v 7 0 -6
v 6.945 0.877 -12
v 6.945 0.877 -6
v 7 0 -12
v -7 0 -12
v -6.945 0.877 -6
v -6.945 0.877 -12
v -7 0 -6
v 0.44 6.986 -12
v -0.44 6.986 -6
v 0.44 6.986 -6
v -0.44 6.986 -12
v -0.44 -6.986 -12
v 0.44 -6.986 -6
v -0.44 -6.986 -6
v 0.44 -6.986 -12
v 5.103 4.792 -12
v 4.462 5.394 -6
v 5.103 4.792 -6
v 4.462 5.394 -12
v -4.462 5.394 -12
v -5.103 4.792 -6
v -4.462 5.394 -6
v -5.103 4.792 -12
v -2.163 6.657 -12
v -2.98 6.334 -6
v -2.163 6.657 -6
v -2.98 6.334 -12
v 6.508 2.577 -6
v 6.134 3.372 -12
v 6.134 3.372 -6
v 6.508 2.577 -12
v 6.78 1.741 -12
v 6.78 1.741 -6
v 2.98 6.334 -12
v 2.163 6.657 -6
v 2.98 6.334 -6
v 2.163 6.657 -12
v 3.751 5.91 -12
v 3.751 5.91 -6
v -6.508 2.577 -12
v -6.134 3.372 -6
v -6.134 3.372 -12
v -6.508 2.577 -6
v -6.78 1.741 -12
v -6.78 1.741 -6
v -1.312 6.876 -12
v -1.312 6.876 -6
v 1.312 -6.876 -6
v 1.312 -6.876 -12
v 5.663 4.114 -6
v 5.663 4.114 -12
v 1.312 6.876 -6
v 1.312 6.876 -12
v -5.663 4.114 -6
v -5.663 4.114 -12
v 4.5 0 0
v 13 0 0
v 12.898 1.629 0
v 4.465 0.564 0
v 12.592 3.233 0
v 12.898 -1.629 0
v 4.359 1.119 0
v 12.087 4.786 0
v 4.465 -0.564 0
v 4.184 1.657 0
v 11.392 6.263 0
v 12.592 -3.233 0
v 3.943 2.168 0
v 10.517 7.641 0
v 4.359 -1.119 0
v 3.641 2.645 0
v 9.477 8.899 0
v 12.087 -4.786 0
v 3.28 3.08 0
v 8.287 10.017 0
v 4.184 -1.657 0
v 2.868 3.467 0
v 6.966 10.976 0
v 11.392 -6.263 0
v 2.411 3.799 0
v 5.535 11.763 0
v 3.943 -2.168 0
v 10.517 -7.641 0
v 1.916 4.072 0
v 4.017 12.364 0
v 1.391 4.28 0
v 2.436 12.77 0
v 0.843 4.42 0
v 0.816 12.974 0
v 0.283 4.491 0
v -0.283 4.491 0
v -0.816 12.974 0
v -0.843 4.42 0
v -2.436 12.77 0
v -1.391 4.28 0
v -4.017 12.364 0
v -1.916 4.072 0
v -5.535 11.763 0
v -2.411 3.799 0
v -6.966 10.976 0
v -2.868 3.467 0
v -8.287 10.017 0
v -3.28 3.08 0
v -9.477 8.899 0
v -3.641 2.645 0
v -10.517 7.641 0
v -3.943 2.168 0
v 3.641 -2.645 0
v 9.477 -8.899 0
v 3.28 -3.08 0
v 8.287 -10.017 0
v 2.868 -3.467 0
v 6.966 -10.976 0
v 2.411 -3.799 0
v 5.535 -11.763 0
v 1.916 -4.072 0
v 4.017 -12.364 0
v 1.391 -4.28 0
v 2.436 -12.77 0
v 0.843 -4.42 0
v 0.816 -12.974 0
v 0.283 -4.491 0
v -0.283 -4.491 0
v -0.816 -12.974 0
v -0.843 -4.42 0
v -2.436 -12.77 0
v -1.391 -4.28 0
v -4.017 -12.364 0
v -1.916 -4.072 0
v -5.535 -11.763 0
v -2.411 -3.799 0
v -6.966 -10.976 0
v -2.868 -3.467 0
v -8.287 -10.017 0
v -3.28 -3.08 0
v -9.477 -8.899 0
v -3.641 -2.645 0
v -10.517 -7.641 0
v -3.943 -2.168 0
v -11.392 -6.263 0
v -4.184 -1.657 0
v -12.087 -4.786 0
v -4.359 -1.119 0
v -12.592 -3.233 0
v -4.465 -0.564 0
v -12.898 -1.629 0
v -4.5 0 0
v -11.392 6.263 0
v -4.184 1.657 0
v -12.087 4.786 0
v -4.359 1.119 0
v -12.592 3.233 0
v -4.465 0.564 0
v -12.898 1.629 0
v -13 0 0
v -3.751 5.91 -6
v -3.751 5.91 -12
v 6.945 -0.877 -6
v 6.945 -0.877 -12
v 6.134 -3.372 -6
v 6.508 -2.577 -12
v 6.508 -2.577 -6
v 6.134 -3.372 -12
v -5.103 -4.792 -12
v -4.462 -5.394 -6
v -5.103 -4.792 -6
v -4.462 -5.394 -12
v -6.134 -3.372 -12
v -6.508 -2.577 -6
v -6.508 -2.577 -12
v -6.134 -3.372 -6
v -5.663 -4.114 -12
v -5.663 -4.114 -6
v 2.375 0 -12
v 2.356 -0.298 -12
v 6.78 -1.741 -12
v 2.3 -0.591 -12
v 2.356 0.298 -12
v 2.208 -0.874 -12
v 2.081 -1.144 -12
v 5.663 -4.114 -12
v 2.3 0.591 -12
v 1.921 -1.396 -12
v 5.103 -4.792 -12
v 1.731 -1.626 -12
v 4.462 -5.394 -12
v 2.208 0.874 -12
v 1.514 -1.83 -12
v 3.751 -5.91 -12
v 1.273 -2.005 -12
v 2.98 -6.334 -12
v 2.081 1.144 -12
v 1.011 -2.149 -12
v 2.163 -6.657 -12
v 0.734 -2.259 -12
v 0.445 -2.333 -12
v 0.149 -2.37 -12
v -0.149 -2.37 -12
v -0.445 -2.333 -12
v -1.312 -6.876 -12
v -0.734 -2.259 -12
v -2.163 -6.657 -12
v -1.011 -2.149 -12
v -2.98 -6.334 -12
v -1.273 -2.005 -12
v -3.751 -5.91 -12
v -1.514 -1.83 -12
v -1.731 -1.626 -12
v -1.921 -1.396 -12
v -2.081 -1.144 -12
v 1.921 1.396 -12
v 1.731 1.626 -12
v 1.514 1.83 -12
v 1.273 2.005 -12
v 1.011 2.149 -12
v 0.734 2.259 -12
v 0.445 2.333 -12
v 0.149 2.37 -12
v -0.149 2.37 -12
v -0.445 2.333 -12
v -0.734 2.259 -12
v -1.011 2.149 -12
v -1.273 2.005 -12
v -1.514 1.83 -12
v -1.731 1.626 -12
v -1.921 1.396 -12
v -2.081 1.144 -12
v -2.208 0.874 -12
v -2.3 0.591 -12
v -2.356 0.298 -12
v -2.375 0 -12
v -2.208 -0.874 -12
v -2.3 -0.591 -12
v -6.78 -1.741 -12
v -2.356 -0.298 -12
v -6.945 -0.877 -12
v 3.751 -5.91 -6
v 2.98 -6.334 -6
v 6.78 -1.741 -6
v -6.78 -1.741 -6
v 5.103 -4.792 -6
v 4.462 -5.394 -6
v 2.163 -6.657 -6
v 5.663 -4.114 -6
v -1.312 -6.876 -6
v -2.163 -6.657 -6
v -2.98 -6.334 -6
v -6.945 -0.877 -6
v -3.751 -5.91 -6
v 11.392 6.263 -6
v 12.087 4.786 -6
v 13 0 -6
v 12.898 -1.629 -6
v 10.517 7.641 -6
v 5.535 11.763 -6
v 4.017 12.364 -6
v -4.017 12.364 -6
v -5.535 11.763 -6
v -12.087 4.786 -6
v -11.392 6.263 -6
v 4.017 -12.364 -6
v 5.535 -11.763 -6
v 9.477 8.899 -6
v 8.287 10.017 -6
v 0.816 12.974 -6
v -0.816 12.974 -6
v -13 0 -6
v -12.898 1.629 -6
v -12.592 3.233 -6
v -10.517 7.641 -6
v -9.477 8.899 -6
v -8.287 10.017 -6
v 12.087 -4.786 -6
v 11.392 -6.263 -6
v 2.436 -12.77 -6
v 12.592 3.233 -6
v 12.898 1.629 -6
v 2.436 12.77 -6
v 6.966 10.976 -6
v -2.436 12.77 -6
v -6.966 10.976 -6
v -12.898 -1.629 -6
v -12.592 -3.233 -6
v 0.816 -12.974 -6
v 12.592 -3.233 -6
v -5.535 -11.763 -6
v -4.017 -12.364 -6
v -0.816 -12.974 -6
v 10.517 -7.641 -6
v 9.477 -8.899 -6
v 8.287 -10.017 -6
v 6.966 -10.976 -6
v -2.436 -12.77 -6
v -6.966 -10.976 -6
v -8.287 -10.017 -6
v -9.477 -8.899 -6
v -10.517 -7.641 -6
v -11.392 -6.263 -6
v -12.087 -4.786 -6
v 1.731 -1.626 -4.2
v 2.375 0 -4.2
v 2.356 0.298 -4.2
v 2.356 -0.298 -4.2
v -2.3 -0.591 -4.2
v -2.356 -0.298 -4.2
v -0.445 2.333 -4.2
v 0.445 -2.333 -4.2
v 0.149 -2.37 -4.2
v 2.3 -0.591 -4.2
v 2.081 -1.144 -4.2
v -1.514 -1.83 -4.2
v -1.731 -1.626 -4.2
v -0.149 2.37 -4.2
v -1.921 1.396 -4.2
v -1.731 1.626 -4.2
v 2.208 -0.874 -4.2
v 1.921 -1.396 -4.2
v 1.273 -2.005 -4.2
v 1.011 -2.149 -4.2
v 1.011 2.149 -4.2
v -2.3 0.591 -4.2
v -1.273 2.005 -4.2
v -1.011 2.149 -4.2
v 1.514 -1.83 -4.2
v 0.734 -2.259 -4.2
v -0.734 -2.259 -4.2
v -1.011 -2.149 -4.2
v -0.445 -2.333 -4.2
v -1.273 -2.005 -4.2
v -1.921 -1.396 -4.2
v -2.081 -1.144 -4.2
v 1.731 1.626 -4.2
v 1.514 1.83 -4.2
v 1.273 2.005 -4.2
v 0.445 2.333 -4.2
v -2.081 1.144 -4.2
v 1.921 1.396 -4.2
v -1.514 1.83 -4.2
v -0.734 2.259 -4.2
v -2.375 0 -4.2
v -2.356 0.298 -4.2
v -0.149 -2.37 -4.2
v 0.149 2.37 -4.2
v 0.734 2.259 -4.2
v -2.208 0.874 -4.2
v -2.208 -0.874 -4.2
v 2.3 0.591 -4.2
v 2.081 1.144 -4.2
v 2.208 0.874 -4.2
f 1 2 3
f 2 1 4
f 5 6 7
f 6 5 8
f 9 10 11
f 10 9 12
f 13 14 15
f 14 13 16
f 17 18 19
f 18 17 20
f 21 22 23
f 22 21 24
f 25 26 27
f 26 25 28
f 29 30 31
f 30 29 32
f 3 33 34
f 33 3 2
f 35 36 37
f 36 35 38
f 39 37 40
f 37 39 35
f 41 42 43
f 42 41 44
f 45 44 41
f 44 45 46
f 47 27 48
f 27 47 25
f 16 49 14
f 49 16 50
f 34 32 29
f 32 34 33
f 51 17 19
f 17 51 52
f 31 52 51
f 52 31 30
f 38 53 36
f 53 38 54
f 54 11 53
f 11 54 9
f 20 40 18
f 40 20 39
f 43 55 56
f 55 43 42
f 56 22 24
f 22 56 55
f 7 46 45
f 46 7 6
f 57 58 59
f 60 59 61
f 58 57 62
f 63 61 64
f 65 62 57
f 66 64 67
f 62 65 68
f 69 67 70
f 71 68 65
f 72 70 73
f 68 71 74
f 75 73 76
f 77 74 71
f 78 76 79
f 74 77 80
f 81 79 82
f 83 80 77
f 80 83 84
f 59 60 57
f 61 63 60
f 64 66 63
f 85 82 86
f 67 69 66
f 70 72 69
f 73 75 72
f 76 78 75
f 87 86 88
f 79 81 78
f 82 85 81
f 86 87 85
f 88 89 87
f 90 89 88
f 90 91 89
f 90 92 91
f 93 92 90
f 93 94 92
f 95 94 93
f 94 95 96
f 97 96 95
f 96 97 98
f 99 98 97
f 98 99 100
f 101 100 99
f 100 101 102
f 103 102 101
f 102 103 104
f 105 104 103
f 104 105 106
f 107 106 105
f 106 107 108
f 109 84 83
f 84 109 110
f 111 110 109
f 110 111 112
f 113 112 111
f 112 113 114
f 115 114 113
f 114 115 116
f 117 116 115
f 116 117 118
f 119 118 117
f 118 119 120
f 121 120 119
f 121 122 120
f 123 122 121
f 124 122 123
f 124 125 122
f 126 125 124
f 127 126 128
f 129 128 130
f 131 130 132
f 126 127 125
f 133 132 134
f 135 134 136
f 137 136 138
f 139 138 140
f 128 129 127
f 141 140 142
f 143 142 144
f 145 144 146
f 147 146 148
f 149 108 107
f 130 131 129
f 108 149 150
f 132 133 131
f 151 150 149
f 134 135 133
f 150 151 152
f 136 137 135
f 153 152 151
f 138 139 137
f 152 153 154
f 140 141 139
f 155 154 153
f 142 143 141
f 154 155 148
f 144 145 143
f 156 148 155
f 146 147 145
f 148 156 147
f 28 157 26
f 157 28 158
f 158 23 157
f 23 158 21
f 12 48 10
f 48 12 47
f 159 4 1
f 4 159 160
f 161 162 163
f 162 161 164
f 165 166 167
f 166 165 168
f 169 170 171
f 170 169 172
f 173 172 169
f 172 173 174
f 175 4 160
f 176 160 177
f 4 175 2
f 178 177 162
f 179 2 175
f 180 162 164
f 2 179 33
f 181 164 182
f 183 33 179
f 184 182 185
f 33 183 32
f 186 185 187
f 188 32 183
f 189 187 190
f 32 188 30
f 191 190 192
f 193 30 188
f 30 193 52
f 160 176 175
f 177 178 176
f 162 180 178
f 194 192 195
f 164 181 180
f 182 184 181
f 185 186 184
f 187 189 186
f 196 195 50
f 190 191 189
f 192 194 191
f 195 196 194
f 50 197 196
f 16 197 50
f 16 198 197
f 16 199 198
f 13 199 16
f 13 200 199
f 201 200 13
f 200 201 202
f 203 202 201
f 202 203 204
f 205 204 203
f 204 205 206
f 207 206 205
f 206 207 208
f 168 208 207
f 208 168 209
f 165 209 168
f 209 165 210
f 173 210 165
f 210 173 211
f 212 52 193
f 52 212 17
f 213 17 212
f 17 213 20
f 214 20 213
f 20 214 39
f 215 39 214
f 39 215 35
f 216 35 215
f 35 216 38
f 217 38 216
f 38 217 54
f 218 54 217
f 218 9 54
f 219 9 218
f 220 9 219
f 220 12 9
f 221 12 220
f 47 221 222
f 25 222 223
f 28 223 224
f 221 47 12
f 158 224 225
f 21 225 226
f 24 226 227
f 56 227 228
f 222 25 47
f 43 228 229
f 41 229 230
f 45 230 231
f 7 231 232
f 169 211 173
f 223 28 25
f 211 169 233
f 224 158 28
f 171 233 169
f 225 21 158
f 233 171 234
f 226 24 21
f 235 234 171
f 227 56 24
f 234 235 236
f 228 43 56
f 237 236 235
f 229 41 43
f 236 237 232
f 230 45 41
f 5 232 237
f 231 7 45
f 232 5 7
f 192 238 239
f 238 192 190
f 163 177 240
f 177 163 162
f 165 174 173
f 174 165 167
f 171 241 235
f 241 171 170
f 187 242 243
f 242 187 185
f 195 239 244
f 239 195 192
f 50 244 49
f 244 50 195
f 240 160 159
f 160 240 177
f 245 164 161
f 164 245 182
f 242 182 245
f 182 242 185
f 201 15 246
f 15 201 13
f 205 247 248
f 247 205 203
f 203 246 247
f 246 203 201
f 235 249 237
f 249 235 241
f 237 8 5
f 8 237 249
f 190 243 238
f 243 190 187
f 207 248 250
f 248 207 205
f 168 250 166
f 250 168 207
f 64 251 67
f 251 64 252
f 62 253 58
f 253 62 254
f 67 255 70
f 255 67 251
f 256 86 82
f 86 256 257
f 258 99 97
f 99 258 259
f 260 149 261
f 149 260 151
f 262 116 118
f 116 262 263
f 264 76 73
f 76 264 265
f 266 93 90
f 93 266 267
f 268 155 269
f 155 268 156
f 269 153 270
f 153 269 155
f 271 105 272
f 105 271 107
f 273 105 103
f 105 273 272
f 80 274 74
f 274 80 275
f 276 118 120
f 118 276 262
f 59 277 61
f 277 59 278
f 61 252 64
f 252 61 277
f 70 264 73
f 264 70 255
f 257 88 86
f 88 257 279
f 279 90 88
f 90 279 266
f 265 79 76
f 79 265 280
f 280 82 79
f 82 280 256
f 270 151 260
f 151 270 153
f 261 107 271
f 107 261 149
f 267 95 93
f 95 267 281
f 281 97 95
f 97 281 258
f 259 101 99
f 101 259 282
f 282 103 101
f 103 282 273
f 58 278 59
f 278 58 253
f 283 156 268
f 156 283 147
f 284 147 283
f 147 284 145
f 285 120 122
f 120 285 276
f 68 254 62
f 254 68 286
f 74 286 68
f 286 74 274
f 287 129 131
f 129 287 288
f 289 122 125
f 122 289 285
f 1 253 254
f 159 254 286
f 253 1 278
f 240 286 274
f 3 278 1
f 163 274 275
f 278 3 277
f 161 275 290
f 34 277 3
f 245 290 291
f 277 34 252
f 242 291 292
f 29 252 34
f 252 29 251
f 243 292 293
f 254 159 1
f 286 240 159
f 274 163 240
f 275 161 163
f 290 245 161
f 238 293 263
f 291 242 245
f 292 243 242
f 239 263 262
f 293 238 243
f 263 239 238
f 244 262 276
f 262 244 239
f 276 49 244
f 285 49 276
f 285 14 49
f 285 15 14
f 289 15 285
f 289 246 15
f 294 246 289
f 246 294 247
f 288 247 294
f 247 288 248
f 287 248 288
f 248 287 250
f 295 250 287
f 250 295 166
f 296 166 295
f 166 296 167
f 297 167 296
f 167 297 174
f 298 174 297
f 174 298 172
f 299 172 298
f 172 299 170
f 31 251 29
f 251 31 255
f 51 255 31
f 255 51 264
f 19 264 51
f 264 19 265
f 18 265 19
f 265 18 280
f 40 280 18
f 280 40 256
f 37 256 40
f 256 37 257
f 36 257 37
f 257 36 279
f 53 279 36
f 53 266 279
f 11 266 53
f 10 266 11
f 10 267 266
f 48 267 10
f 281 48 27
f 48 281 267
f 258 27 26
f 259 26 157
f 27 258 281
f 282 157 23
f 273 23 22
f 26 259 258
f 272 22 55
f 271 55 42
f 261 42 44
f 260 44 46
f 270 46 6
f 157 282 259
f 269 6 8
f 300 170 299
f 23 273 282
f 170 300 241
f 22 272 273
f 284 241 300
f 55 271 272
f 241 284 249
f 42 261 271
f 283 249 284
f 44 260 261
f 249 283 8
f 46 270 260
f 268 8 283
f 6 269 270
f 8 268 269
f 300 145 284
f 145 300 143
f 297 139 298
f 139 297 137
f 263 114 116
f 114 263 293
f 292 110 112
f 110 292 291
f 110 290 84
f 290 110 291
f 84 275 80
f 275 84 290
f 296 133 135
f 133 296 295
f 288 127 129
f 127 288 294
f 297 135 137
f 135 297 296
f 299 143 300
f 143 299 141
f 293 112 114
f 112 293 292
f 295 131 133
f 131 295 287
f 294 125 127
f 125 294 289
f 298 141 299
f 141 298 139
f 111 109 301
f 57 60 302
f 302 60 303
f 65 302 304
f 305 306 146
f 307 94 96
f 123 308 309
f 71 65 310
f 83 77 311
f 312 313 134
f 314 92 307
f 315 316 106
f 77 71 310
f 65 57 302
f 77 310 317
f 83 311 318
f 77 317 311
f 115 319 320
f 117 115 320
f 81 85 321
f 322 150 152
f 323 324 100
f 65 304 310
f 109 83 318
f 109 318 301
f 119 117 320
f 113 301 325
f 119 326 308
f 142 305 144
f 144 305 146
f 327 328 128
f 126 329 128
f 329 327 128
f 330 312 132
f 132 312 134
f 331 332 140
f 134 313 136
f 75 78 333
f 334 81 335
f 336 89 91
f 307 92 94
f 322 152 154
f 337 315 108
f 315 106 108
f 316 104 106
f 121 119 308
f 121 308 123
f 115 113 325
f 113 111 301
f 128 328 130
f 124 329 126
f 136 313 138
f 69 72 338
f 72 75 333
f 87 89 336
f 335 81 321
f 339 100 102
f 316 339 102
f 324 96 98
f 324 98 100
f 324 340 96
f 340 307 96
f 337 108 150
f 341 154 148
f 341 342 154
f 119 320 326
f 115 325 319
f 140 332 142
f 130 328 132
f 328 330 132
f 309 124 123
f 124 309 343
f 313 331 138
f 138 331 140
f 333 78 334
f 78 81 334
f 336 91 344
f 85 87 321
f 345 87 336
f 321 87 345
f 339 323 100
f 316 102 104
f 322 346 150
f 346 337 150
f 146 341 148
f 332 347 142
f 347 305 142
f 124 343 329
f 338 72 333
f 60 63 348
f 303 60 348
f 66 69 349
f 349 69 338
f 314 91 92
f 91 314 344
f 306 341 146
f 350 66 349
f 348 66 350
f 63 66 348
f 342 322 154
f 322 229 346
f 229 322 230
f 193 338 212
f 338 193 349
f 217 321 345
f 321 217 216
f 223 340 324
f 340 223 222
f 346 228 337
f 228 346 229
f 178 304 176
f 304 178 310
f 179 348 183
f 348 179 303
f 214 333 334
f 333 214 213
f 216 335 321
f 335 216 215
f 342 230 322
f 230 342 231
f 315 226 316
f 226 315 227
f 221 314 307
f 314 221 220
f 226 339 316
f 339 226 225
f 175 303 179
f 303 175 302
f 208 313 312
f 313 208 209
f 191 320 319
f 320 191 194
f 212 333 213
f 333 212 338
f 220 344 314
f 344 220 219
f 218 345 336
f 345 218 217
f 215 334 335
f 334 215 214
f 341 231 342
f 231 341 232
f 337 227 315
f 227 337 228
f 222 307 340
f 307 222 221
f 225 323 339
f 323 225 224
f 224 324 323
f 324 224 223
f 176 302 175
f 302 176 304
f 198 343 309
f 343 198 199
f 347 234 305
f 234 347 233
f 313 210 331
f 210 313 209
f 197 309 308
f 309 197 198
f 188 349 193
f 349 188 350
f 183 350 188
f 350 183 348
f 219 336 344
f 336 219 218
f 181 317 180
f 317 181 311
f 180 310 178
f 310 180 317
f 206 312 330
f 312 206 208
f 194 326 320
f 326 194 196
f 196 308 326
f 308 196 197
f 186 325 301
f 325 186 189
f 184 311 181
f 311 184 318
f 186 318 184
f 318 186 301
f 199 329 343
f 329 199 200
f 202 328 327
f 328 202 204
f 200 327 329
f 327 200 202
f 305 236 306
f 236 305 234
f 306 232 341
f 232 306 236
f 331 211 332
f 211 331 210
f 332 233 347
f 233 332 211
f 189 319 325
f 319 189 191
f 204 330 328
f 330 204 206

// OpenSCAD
$fn = 50;


difference() {
	union() {
		translate(v = [0, 0, -12.0000000000]) {
			cylinder(h = 12, r = 7.0000000000);
		}
		translate(v = [0, 0, -6.0000000000]) {
			cylinder(h = 6, r = 13.0000000000);
		}
	}
	union() {
		translate(v = [0, 0, 0]) {
			rotate(a = [0, 0, 0]) {
				difference() {
					union() {
						#translate(v = [0, 0, -12.0000000000]) {
							cylinder(h = 12, r = 2.2500000000);
						}
						#translate(v = [0, 0, -4.2000000000]) {
							cylinder(h = 4.2000000000, r1 = 2.3750000000, r2 = 4.5000000000);
						}
						#translate(v = [0, 0, -12.0000000000]) {
							cylinder(h = 12, r = 2.3750000000);
						}
						#translate(v = [0, 0, -12.0000000000]) {
							cylinder(h = 12, r = 2.2500000000);
						}
					}
					union();
				}
			}
		}
	}
}
